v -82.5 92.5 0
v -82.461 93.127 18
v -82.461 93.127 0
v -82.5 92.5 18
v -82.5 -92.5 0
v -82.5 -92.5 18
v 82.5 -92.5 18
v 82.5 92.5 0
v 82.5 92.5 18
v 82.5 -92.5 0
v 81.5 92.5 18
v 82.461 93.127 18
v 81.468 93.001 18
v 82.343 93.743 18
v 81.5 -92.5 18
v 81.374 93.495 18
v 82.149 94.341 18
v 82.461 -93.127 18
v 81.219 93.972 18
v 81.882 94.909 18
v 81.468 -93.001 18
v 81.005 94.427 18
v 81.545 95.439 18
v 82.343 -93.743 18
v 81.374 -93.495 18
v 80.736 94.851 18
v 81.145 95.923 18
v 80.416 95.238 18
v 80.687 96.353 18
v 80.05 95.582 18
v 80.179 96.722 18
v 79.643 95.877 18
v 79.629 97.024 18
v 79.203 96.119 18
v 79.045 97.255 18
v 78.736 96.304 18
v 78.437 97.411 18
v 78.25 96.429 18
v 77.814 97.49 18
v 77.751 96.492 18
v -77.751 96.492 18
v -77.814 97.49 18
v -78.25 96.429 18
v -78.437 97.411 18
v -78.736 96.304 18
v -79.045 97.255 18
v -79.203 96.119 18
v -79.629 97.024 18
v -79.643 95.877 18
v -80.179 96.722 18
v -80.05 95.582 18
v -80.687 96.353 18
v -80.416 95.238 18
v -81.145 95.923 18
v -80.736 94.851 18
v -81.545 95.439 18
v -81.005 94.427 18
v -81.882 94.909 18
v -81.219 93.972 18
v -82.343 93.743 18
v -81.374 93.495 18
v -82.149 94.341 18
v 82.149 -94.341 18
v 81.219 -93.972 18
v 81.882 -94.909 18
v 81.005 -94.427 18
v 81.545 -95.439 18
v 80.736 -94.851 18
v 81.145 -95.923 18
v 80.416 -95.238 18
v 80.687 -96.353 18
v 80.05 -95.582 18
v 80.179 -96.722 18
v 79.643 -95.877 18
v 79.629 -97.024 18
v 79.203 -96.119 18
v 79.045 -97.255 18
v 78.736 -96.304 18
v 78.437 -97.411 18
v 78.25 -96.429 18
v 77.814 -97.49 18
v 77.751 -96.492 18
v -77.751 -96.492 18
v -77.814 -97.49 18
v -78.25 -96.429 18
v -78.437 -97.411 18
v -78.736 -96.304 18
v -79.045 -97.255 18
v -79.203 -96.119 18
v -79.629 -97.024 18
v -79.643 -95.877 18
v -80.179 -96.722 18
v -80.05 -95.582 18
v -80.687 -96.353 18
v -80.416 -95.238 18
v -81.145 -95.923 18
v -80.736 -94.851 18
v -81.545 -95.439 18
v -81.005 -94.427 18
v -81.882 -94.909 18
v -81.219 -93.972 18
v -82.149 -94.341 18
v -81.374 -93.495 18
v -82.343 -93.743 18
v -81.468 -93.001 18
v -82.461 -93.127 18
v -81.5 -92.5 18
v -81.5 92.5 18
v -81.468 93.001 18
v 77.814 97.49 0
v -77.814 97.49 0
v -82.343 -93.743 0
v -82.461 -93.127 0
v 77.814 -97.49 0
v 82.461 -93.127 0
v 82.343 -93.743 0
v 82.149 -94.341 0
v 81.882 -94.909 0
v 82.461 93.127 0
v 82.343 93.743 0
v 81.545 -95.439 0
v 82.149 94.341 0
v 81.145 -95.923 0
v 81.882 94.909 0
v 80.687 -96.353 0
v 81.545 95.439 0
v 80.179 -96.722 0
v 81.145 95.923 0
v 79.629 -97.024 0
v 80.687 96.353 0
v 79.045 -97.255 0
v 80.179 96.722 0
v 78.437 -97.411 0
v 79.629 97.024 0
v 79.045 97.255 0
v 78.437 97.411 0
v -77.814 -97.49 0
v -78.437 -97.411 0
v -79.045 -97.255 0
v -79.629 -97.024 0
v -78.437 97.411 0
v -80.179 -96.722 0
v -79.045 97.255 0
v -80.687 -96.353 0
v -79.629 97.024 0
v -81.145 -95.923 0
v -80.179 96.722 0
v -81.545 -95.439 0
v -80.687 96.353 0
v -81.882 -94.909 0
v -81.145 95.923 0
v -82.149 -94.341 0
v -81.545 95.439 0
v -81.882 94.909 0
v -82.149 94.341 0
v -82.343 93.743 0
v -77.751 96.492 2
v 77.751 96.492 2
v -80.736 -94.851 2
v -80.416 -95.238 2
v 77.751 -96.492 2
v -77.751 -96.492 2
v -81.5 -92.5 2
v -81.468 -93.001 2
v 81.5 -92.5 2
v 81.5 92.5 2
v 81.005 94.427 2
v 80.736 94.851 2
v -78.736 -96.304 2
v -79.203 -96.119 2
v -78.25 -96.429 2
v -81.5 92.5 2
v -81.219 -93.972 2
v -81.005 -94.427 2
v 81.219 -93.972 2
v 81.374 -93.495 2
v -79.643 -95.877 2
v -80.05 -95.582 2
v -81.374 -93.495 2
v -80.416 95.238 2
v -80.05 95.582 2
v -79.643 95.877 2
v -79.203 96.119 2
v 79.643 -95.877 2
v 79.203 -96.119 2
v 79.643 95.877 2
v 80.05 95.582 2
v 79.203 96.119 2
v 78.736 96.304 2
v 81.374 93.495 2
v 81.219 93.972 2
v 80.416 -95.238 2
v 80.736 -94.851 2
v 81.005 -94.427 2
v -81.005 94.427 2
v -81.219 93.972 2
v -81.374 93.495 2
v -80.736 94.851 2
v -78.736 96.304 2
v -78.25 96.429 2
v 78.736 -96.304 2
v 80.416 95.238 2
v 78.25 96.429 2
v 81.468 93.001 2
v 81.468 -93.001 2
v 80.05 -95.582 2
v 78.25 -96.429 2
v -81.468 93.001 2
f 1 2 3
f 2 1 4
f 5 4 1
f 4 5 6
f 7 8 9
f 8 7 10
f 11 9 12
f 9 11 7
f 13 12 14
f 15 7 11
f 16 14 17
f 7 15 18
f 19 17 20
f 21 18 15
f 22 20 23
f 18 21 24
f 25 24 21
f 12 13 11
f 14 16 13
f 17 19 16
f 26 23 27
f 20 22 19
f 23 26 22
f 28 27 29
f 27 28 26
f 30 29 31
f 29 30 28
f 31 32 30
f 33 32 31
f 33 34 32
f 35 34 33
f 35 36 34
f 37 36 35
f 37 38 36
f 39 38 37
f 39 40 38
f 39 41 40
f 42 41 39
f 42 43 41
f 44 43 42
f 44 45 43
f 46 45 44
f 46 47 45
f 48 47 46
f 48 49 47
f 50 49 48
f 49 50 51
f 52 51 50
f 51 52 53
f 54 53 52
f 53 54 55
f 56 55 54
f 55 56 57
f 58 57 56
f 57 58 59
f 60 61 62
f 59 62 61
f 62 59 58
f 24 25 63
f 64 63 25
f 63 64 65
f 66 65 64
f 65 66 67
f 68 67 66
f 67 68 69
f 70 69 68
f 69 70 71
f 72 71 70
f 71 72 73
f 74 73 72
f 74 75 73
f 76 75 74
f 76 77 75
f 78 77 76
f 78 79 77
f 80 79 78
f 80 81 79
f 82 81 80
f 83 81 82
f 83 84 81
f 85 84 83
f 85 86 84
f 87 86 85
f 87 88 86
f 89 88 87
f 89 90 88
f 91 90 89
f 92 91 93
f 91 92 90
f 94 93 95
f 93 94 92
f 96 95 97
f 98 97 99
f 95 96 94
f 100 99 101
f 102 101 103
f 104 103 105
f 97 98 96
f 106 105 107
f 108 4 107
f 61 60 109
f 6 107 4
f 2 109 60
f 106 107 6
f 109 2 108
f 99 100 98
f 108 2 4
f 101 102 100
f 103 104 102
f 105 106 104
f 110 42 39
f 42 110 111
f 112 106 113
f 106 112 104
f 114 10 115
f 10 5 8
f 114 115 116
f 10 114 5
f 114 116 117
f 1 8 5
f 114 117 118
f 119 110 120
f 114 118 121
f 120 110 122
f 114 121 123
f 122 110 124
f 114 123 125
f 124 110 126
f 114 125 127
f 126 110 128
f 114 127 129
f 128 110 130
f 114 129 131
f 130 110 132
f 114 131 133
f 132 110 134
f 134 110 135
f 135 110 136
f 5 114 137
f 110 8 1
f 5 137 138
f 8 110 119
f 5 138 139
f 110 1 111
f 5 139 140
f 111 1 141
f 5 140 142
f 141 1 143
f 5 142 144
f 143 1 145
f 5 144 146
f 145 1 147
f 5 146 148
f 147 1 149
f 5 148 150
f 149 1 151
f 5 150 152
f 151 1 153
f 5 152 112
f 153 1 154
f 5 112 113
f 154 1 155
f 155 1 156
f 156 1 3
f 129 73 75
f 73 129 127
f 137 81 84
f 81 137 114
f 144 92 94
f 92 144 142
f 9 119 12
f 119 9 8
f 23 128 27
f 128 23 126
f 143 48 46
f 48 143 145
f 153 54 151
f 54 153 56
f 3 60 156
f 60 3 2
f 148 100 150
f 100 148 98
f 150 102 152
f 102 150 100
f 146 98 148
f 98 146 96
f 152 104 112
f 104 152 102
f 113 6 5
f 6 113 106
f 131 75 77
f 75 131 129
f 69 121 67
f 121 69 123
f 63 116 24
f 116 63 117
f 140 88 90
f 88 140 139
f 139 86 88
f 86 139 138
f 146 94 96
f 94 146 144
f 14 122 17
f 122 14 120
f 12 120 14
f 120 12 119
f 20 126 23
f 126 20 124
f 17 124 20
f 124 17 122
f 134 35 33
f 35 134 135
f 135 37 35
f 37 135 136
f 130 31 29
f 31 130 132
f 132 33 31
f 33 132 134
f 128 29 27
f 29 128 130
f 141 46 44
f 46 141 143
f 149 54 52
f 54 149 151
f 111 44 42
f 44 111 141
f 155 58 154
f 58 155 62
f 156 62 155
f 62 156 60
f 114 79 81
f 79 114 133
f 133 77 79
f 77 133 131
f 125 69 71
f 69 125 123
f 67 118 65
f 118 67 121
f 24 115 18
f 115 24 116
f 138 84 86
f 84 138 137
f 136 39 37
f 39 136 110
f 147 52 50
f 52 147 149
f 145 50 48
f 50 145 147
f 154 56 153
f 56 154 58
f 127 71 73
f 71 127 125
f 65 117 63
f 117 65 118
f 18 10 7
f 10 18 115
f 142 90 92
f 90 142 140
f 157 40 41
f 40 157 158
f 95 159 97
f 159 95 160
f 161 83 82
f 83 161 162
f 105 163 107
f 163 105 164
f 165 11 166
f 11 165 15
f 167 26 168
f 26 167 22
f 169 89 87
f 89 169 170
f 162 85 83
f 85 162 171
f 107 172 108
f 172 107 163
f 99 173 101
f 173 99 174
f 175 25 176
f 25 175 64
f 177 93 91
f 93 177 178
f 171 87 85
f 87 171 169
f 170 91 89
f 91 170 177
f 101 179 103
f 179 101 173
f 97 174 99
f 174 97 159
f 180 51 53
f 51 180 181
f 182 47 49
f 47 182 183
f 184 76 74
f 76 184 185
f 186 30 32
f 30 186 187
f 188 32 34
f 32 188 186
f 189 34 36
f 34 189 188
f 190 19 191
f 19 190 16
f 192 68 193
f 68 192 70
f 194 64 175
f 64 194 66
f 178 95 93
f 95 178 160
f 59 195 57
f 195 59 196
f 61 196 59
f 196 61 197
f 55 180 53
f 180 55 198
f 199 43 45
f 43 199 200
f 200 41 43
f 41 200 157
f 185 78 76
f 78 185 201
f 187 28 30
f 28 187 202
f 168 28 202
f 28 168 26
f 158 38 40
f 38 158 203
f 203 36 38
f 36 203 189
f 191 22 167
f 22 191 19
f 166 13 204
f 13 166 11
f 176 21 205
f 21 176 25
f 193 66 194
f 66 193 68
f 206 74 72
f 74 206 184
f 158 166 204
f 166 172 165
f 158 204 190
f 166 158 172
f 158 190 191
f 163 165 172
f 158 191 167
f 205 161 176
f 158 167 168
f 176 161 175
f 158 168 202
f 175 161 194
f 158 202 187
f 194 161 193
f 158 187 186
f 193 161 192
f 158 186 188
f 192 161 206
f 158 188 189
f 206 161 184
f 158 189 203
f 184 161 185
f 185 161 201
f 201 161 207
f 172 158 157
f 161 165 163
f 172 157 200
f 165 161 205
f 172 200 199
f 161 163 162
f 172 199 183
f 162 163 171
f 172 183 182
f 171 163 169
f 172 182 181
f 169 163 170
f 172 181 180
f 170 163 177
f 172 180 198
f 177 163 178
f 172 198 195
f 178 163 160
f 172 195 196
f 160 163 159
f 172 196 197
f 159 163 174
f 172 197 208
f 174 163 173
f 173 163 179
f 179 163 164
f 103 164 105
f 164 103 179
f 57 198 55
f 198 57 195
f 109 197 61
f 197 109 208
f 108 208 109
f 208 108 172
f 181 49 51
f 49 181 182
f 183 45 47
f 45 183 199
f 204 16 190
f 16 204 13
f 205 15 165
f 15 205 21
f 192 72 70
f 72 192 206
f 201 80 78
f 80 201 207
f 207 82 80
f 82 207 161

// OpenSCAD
$fn = 50;


difference() {
	union() {
		hull() {
			translate(v = [-77.5000000000, 92.5000000000, 0]) {
				cylinder(h = 18, r = 5);
			}
			translate(v = [77.5000000000, 92.5000000000, 0]) {
				cylinder(h = 18, r = 5);
			}
			translate(v = [-77.5000000000, -92.5000000000, 0]) {
				cylinder(h = 18, r = 5);
			}
			translate(v = [77.5000000000, -92.5000000000, 0]) {
				cylinder(h = 18, r = 5);
			}
		}
	}
	union() {
		translate(v = [0, 0, 2]) {
			hull() {
				translate(v = [-77.5000000000, 92.5000000000, 0]) {
					cylinder(h = 16, r = 4);
				}
				translate(v = [77.5000000000, 92.5000000000, 0]) {
					cylinder(h = 16, r = 4);
				}
				translate(v = [-77.5000000000, -92.5000000000, 0]) {
					cylinder(h = 16, r = 4);
				}
				translate(v = [77.5000000000, -92.5000000000, 0]) {
					cylinder(h = 16, r = 4);
				}
			}
		}
	}
}
